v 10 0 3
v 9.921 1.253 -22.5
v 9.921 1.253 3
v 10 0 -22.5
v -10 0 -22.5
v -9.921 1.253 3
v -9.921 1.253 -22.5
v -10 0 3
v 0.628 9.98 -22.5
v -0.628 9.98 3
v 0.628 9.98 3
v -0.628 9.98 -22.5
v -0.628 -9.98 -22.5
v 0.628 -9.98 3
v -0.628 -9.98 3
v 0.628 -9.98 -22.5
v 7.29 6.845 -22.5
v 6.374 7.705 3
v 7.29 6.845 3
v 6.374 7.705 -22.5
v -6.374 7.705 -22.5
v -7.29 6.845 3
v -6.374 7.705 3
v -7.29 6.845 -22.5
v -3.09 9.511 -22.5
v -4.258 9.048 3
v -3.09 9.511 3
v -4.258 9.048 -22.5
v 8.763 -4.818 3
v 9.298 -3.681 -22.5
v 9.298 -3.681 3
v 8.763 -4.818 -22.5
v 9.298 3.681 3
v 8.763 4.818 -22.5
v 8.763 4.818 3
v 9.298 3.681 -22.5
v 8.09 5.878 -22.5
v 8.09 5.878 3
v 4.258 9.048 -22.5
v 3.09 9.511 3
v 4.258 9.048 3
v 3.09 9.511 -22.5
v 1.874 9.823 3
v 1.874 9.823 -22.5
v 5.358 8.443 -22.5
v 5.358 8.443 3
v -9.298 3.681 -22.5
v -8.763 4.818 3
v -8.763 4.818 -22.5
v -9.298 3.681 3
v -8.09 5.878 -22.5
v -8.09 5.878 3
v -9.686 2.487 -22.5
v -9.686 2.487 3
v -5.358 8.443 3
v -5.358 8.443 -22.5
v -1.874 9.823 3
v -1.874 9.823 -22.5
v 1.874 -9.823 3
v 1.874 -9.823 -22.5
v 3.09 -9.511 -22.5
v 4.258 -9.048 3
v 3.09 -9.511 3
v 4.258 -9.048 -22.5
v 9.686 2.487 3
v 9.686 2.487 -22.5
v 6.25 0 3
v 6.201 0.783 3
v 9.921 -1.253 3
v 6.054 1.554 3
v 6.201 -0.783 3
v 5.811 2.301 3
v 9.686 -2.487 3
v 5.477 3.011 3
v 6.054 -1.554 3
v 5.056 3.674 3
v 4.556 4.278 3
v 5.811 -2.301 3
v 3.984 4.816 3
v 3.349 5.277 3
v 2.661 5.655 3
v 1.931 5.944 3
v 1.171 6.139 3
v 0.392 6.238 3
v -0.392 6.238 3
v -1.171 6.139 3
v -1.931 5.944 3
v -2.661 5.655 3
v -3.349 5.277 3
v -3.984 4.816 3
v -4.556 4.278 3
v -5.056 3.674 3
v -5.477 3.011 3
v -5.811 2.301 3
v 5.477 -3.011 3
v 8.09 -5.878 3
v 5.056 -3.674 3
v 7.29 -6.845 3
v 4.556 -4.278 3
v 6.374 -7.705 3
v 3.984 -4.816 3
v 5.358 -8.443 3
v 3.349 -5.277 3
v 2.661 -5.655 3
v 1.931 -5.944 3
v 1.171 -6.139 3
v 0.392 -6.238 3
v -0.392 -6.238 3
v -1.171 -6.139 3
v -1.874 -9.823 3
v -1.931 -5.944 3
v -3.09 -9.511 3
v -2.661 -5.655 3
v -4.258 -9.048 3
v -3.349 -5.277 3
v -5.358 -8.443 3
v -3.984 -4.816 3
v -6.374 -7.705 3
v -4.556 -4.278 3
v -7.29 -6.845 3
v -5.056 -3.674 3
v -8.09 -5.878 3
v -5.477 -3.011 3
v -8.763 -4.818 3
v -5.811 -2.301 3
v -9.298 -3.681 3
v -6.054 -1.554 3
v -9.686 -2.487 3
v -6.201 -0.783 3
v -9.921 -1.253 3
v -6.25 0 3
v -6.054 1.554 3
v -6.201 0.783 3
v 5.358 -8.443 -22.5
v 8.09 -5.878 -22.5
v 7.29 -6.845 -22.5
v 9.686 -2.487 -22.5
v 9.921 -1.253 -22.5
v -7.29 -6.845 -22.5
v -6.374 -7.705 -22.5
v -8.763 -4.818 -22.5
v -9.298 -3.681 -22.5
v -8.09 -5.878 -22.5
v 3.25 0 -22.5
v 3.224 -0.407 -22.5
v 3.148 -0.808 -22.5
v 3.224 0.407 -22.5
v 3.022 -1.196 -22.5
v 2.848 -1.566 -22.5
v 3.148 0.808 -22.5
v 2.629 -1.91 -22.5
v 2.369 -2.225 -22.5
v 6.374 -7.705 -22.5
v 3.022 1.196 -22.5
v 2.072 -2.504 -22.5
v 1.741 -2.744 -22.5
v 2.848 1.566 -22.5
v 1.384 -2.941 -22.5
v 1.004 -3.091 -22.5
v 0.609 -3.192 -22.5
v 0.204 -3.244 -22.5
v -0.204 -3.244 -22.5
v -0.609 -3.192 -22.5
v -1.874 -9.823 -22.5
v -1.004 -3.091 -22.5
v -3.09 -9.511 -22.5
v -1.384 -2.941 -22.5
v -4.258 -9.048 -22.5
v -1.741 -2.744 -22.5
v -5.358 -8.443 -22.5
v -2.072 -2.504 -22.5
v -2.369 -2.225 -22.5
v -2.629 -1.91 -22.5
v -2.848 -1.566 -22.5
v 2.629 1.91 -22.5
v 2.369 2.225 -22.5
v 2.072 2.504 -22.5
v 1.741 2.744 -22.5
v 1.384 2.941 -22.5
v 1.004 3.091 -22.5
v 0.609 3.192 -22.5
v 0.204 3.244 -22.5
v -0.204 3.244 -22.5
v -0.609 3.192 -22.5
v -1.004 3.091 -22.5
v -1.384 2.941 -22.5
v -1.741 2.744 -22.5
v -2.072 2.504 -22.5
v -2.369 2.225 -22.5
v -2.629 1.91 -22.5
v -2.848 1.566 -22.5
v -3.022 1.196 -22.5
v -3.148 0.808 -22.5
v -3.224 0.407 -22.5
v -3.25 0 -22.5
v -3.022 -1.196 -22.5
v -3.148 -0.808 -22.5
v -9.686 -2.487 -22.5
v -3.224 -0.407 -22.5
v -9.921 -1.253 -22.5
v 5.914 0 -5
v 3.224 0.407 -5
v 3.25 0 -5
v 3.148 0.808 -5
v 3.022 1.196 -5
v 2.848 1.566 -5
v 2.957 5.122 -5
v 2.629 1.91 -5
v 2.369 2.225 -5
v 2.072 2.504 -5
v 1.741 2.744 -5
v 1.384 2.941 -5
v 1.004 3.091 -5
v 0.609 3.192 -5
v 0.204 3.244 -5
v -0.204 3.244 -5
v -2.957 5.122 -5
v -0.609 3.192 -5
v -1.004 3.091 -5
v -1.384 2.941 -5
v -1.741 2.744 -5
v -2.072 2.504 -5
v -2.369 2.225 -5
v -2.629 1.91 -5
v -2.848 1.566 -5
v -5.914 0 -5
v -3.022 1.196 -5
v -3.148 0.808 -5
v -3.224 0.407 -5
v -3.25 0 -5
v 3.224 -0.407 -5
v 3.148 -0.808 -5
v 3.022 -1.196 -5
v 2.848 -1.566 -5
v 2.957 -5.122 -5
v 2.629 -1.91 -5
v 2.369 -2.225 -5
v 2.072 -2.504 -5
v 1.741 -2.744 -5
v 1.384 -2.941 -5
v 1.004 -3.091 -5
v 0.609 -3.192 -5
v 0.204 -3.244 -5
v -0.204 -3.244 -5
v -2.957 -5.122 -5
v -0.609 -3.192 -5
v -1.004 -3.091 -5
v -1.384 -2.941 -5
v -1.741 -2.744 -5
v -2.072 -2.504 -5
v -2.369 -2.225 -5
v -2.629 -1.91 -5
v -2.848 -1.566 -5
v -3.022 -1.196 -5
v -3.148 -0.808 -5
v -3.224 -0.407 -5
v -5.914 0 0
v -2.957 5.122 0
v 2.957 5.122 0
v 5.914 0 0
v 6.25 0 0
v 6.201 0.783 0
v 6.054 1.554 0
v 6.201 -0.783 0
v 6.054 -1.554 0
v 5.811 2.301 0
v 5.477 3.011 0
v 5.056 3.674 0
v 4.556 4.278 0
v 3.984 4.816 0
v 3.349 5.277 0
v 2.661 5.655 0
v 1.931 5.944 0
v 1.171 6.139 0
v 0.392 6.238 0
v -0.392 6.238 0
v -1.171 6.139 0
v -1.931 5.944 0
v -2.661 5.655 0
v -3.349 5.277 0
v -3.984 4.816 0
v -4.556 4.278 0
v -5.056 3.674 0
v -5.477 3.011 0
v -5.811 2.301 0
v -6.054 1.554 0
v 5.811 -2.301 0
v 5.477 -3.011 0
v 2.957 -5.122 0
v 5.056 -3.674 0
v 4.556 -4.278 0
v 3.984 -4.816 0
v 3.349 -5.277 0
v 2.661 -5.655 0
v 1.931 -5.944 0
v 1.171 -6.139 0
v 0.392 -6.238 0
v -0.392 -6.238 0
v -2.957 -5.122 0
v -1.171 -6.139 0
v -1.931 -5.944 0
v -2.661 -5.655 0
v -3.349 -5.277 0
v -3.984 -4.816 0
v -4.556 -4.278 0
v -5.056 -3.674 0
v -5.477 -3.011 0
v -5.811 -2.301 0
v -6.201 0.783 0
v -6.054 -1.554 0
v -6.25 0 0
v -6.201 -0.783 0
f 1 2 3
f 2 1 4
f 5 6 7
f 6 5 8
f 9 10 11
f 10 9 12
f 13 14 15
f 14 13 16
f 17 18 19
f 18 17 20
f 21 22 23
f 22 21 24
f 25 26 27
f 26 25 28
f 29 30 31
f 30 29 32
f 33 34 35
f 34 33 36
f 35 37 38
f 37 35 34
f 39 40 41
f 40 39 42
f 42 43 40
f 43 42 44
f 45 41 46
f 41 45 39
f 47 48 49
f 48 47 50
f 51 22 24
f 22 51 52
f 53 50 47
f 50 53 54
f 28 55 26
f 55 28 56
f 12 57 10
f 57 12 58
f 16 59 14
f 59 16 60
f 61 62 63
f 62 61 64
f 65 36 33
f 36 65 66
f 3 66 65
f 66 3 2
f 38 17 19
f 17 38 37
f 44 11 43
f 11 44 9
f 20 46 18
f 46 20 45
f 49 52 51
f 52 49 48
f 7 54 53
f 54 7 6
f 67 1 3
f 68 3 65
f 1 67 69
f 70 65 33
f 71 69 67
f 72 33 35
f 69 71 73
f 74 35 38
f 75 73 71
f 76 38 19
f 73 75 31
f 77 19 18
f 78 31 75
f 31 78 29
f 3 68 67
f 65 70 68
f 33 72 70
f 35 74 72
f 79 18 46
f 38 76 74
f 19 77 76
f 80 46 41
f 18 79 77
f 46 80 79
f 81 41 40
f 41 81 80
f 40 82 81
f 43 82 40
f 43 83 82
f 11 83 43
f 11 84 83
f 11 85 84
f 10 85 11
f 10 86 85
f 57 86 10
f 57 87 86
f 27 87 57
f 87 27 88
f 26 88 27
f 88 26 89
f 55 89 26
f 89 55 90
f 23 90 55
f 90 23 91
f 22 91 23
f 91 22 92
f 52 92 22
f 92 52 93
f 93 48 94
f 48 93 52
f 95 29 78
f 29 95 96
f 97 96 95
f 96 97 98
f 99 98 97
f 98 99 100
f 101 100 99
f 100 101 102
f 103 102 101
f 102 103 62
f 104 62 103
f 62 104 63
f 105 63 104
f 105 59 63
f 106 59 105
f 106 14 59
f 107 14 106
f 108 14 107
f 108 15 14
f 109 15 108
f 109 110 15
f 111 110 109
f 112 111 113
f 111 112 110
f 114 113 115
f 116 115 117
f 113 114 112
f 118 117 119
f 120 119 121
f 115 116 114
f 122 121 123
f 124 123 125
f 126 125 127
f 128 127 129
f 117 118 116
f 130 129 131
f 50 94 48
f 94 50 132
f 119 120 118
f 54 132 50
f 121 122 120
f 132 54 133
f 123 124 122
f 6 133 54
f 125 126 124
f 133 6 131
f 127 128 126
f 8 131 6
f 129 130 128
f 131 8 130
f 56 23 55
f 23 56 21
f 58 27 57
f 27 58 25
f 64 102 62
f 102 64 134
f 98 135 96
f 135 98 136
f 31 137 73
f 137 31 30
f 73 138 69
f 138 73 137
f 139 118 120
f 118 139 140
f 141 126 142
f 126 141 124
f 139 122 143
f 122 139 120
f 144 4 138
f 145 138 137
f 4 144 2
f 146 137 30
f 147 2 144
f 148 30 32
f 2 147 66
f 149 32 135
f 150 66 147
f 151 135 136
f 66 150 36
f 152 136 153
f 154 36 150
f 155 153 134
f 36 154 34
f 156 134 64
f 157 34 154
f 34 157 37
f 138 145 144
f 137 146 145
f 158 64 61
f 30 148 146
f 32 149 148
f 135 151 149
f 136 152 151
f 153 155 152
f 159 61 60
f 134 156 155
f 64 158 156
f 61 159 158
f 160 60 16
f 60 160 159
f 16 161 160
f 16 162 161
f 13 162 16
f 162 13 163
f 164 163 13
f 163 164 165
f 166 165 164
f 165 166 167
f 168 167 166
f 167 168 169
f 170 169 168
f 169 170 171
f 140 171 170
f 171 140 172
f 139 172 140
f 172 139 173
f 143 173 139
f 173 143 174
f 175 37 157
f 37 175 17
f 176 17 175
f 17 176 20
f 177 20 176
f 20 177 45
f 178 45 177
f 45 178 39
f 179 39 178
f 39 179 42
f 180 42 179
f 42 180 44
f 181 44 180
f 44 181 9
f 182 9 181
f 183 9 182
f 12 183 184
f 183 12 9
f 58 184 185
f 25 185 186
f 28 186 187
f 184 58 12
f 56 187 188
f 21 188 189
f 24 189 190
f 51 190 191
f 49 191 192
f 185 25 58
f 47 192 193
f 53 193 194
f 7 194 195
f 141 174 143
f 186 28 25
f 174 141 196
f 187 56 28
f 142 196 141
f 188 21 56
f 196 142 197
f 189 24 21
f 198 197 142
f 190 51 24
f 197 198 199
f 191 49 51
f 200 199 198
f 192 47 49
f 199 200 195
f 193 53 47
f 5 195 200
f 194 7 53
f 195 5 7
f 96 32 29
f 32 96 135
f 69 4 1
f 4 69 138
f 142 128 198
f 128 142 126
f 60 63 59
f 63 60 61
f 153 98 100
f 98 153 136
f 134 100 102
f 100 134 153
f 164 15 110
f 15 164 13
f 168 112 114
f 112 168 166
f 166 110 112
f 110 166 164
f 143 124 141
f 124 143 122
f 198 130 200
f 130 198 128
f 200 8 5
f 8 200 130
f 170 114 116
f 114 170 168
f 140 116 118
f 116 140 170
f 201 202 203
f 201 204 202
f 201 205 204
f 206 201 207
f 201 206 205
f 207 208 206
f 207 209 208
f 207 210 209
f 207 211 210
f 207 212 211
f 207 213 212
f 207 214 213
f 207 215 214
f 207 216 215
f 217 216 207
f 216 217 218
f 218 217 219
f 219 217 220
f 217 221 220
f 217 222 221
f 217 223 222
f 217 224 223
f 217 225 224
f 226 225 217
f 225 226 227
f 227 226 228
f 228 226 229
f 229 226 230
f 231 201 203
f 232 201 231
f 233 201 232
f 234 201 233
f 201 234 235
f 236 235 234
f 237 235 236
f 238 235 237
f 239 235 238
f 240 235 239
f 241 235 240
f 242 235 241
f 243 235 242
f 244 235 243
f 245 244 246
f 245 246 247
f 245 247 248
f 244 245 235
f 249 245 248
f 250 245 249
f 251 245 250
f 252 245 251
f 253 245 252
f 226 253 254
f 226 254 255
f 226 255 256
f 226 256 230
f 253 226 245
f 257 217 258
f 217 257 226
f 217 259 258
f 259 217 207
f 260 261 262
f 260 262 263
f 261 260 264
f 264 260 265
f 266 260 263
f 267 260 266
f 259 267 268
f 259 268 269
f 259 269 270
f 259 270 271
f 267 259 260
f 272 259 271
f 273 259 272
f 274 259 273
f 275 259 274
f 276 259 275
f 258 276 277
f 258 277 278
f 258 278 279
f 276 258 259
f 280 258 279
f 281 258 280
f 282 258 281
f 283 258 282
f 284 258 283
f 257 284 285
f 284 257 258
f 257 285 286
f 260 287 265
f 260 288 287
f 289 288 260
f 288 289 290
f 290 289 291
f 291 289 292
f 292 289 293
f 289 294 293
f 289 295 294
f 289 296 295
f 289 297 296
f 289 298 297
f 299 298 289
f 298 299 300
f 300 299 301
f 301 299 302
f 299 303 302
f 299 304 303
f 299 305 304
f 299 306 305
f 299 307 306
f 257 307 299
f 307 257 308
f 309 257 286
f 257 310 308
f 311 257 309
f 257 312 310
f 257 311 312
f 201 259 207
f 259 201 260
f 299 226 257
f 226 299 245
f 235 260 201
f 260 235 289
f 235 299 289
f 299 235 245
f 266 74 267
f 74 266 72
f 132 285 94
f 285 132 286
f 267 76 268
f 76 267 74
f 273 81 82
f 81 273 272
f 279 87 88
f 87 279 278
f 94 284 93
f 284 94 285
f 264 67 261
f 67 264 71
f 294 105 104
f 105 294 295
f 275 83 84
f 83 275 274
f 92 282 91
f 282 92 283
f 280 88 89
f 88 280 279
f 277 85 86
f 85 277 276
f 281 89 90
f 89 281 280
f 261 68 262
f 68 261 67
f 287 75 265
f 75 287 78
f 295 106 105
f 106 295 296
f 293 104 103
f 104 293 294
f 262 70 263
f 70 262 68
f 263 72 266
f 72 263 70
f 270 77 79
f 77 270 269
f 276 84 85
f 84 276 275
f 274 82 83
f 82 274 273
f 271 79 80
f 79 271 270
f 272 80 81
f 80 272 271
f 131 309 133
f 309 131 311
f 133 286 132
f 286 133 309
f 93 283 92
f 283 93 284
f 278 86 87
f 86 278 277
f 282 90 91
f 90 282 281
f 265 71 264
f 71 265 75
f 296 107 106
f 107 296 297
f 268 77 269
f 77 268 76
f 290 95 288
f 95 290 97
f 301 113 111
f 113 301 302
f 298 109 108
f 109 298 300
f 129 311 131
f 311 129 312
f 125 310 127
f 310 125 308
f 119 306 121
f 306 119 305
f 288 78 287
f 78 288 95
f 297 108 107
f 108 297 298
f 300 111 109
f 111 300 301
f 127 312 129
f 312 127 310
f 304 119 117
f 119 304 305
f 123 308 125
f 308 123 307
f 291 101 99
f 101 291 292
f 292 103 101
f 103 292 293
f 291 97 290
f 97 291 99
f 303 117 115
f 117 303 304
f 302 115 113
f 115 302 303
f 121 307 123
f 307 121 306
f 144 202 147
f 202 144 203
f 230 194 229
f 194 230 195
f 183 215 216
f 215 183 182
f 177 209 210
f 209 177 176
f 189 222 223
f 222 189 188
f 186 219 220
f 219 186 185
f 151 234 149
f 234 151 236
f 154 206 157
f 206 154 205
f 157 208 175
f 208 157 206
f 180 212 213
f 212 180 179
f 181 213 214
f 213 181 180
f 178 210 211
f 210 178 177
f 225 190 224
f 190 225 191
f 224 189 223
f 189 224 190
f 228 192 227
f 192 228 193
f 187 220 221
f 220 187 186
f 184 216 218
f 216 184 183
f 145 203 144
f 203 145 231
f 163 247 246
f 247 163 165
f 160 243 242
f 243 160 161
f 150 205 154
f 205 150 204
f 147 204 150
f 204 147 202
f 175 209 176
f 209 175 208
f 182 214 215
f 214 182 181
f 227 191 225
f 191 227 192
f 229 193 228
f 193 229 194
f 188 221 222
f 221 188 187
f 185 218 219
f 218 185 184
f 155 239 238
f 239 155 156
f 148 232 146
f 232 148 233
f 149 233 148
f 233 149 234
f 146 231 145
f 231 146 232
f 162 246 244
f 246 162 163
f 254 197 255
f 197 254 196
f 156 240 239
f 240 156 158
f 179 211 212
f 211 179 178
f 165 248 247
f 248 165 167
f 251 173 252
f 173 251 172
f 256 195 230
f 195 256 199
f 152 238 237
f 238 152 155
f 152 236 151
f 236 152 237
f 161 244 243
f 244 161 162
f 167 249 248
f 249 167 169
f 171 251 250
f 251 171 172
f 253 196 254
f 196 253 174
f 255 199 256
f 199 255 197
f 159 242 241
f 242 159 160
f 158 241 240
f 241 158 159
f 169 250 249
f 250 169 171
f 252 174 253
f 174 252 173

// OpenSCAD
$fn = 50;

difference() {
	union() {
		translate(v = [0, 0, -22.5]) {
			cylinder(h = 25.5, r = 10.0);
		}
		#translate(v = [0, 0, -24.0]) {
			cylinder(h = 24, r = 2.875);
		}
	}
	union() {
		translate(v = [0, 0, 0]) {
			rotate(a = [0, 0, 0]) {
				difference() {
					union() {
						translate(v = [0, 0, -5]) {
							linear_extrude(height = 5) {
								polygon(points = [[5.914249999999999, 0.0], [2.957125, 5.1218907443321156], [-2.9571249999999982, 5.1218907443321156], [-5.914249999999999, 7.242867331857232e-16], [-2.9571250000000022, -5.121890744332115], [2.9571249999999956, -5.121890744332118]]);
							}
						}
					}
					union();
				}
			}
		}
		#cylinder(h = 3, r = 6.25);
		#translate(v = [0, 0, -100.0]) {
			cylinder(h = 200, r = 3.25);
		}
	}
}
